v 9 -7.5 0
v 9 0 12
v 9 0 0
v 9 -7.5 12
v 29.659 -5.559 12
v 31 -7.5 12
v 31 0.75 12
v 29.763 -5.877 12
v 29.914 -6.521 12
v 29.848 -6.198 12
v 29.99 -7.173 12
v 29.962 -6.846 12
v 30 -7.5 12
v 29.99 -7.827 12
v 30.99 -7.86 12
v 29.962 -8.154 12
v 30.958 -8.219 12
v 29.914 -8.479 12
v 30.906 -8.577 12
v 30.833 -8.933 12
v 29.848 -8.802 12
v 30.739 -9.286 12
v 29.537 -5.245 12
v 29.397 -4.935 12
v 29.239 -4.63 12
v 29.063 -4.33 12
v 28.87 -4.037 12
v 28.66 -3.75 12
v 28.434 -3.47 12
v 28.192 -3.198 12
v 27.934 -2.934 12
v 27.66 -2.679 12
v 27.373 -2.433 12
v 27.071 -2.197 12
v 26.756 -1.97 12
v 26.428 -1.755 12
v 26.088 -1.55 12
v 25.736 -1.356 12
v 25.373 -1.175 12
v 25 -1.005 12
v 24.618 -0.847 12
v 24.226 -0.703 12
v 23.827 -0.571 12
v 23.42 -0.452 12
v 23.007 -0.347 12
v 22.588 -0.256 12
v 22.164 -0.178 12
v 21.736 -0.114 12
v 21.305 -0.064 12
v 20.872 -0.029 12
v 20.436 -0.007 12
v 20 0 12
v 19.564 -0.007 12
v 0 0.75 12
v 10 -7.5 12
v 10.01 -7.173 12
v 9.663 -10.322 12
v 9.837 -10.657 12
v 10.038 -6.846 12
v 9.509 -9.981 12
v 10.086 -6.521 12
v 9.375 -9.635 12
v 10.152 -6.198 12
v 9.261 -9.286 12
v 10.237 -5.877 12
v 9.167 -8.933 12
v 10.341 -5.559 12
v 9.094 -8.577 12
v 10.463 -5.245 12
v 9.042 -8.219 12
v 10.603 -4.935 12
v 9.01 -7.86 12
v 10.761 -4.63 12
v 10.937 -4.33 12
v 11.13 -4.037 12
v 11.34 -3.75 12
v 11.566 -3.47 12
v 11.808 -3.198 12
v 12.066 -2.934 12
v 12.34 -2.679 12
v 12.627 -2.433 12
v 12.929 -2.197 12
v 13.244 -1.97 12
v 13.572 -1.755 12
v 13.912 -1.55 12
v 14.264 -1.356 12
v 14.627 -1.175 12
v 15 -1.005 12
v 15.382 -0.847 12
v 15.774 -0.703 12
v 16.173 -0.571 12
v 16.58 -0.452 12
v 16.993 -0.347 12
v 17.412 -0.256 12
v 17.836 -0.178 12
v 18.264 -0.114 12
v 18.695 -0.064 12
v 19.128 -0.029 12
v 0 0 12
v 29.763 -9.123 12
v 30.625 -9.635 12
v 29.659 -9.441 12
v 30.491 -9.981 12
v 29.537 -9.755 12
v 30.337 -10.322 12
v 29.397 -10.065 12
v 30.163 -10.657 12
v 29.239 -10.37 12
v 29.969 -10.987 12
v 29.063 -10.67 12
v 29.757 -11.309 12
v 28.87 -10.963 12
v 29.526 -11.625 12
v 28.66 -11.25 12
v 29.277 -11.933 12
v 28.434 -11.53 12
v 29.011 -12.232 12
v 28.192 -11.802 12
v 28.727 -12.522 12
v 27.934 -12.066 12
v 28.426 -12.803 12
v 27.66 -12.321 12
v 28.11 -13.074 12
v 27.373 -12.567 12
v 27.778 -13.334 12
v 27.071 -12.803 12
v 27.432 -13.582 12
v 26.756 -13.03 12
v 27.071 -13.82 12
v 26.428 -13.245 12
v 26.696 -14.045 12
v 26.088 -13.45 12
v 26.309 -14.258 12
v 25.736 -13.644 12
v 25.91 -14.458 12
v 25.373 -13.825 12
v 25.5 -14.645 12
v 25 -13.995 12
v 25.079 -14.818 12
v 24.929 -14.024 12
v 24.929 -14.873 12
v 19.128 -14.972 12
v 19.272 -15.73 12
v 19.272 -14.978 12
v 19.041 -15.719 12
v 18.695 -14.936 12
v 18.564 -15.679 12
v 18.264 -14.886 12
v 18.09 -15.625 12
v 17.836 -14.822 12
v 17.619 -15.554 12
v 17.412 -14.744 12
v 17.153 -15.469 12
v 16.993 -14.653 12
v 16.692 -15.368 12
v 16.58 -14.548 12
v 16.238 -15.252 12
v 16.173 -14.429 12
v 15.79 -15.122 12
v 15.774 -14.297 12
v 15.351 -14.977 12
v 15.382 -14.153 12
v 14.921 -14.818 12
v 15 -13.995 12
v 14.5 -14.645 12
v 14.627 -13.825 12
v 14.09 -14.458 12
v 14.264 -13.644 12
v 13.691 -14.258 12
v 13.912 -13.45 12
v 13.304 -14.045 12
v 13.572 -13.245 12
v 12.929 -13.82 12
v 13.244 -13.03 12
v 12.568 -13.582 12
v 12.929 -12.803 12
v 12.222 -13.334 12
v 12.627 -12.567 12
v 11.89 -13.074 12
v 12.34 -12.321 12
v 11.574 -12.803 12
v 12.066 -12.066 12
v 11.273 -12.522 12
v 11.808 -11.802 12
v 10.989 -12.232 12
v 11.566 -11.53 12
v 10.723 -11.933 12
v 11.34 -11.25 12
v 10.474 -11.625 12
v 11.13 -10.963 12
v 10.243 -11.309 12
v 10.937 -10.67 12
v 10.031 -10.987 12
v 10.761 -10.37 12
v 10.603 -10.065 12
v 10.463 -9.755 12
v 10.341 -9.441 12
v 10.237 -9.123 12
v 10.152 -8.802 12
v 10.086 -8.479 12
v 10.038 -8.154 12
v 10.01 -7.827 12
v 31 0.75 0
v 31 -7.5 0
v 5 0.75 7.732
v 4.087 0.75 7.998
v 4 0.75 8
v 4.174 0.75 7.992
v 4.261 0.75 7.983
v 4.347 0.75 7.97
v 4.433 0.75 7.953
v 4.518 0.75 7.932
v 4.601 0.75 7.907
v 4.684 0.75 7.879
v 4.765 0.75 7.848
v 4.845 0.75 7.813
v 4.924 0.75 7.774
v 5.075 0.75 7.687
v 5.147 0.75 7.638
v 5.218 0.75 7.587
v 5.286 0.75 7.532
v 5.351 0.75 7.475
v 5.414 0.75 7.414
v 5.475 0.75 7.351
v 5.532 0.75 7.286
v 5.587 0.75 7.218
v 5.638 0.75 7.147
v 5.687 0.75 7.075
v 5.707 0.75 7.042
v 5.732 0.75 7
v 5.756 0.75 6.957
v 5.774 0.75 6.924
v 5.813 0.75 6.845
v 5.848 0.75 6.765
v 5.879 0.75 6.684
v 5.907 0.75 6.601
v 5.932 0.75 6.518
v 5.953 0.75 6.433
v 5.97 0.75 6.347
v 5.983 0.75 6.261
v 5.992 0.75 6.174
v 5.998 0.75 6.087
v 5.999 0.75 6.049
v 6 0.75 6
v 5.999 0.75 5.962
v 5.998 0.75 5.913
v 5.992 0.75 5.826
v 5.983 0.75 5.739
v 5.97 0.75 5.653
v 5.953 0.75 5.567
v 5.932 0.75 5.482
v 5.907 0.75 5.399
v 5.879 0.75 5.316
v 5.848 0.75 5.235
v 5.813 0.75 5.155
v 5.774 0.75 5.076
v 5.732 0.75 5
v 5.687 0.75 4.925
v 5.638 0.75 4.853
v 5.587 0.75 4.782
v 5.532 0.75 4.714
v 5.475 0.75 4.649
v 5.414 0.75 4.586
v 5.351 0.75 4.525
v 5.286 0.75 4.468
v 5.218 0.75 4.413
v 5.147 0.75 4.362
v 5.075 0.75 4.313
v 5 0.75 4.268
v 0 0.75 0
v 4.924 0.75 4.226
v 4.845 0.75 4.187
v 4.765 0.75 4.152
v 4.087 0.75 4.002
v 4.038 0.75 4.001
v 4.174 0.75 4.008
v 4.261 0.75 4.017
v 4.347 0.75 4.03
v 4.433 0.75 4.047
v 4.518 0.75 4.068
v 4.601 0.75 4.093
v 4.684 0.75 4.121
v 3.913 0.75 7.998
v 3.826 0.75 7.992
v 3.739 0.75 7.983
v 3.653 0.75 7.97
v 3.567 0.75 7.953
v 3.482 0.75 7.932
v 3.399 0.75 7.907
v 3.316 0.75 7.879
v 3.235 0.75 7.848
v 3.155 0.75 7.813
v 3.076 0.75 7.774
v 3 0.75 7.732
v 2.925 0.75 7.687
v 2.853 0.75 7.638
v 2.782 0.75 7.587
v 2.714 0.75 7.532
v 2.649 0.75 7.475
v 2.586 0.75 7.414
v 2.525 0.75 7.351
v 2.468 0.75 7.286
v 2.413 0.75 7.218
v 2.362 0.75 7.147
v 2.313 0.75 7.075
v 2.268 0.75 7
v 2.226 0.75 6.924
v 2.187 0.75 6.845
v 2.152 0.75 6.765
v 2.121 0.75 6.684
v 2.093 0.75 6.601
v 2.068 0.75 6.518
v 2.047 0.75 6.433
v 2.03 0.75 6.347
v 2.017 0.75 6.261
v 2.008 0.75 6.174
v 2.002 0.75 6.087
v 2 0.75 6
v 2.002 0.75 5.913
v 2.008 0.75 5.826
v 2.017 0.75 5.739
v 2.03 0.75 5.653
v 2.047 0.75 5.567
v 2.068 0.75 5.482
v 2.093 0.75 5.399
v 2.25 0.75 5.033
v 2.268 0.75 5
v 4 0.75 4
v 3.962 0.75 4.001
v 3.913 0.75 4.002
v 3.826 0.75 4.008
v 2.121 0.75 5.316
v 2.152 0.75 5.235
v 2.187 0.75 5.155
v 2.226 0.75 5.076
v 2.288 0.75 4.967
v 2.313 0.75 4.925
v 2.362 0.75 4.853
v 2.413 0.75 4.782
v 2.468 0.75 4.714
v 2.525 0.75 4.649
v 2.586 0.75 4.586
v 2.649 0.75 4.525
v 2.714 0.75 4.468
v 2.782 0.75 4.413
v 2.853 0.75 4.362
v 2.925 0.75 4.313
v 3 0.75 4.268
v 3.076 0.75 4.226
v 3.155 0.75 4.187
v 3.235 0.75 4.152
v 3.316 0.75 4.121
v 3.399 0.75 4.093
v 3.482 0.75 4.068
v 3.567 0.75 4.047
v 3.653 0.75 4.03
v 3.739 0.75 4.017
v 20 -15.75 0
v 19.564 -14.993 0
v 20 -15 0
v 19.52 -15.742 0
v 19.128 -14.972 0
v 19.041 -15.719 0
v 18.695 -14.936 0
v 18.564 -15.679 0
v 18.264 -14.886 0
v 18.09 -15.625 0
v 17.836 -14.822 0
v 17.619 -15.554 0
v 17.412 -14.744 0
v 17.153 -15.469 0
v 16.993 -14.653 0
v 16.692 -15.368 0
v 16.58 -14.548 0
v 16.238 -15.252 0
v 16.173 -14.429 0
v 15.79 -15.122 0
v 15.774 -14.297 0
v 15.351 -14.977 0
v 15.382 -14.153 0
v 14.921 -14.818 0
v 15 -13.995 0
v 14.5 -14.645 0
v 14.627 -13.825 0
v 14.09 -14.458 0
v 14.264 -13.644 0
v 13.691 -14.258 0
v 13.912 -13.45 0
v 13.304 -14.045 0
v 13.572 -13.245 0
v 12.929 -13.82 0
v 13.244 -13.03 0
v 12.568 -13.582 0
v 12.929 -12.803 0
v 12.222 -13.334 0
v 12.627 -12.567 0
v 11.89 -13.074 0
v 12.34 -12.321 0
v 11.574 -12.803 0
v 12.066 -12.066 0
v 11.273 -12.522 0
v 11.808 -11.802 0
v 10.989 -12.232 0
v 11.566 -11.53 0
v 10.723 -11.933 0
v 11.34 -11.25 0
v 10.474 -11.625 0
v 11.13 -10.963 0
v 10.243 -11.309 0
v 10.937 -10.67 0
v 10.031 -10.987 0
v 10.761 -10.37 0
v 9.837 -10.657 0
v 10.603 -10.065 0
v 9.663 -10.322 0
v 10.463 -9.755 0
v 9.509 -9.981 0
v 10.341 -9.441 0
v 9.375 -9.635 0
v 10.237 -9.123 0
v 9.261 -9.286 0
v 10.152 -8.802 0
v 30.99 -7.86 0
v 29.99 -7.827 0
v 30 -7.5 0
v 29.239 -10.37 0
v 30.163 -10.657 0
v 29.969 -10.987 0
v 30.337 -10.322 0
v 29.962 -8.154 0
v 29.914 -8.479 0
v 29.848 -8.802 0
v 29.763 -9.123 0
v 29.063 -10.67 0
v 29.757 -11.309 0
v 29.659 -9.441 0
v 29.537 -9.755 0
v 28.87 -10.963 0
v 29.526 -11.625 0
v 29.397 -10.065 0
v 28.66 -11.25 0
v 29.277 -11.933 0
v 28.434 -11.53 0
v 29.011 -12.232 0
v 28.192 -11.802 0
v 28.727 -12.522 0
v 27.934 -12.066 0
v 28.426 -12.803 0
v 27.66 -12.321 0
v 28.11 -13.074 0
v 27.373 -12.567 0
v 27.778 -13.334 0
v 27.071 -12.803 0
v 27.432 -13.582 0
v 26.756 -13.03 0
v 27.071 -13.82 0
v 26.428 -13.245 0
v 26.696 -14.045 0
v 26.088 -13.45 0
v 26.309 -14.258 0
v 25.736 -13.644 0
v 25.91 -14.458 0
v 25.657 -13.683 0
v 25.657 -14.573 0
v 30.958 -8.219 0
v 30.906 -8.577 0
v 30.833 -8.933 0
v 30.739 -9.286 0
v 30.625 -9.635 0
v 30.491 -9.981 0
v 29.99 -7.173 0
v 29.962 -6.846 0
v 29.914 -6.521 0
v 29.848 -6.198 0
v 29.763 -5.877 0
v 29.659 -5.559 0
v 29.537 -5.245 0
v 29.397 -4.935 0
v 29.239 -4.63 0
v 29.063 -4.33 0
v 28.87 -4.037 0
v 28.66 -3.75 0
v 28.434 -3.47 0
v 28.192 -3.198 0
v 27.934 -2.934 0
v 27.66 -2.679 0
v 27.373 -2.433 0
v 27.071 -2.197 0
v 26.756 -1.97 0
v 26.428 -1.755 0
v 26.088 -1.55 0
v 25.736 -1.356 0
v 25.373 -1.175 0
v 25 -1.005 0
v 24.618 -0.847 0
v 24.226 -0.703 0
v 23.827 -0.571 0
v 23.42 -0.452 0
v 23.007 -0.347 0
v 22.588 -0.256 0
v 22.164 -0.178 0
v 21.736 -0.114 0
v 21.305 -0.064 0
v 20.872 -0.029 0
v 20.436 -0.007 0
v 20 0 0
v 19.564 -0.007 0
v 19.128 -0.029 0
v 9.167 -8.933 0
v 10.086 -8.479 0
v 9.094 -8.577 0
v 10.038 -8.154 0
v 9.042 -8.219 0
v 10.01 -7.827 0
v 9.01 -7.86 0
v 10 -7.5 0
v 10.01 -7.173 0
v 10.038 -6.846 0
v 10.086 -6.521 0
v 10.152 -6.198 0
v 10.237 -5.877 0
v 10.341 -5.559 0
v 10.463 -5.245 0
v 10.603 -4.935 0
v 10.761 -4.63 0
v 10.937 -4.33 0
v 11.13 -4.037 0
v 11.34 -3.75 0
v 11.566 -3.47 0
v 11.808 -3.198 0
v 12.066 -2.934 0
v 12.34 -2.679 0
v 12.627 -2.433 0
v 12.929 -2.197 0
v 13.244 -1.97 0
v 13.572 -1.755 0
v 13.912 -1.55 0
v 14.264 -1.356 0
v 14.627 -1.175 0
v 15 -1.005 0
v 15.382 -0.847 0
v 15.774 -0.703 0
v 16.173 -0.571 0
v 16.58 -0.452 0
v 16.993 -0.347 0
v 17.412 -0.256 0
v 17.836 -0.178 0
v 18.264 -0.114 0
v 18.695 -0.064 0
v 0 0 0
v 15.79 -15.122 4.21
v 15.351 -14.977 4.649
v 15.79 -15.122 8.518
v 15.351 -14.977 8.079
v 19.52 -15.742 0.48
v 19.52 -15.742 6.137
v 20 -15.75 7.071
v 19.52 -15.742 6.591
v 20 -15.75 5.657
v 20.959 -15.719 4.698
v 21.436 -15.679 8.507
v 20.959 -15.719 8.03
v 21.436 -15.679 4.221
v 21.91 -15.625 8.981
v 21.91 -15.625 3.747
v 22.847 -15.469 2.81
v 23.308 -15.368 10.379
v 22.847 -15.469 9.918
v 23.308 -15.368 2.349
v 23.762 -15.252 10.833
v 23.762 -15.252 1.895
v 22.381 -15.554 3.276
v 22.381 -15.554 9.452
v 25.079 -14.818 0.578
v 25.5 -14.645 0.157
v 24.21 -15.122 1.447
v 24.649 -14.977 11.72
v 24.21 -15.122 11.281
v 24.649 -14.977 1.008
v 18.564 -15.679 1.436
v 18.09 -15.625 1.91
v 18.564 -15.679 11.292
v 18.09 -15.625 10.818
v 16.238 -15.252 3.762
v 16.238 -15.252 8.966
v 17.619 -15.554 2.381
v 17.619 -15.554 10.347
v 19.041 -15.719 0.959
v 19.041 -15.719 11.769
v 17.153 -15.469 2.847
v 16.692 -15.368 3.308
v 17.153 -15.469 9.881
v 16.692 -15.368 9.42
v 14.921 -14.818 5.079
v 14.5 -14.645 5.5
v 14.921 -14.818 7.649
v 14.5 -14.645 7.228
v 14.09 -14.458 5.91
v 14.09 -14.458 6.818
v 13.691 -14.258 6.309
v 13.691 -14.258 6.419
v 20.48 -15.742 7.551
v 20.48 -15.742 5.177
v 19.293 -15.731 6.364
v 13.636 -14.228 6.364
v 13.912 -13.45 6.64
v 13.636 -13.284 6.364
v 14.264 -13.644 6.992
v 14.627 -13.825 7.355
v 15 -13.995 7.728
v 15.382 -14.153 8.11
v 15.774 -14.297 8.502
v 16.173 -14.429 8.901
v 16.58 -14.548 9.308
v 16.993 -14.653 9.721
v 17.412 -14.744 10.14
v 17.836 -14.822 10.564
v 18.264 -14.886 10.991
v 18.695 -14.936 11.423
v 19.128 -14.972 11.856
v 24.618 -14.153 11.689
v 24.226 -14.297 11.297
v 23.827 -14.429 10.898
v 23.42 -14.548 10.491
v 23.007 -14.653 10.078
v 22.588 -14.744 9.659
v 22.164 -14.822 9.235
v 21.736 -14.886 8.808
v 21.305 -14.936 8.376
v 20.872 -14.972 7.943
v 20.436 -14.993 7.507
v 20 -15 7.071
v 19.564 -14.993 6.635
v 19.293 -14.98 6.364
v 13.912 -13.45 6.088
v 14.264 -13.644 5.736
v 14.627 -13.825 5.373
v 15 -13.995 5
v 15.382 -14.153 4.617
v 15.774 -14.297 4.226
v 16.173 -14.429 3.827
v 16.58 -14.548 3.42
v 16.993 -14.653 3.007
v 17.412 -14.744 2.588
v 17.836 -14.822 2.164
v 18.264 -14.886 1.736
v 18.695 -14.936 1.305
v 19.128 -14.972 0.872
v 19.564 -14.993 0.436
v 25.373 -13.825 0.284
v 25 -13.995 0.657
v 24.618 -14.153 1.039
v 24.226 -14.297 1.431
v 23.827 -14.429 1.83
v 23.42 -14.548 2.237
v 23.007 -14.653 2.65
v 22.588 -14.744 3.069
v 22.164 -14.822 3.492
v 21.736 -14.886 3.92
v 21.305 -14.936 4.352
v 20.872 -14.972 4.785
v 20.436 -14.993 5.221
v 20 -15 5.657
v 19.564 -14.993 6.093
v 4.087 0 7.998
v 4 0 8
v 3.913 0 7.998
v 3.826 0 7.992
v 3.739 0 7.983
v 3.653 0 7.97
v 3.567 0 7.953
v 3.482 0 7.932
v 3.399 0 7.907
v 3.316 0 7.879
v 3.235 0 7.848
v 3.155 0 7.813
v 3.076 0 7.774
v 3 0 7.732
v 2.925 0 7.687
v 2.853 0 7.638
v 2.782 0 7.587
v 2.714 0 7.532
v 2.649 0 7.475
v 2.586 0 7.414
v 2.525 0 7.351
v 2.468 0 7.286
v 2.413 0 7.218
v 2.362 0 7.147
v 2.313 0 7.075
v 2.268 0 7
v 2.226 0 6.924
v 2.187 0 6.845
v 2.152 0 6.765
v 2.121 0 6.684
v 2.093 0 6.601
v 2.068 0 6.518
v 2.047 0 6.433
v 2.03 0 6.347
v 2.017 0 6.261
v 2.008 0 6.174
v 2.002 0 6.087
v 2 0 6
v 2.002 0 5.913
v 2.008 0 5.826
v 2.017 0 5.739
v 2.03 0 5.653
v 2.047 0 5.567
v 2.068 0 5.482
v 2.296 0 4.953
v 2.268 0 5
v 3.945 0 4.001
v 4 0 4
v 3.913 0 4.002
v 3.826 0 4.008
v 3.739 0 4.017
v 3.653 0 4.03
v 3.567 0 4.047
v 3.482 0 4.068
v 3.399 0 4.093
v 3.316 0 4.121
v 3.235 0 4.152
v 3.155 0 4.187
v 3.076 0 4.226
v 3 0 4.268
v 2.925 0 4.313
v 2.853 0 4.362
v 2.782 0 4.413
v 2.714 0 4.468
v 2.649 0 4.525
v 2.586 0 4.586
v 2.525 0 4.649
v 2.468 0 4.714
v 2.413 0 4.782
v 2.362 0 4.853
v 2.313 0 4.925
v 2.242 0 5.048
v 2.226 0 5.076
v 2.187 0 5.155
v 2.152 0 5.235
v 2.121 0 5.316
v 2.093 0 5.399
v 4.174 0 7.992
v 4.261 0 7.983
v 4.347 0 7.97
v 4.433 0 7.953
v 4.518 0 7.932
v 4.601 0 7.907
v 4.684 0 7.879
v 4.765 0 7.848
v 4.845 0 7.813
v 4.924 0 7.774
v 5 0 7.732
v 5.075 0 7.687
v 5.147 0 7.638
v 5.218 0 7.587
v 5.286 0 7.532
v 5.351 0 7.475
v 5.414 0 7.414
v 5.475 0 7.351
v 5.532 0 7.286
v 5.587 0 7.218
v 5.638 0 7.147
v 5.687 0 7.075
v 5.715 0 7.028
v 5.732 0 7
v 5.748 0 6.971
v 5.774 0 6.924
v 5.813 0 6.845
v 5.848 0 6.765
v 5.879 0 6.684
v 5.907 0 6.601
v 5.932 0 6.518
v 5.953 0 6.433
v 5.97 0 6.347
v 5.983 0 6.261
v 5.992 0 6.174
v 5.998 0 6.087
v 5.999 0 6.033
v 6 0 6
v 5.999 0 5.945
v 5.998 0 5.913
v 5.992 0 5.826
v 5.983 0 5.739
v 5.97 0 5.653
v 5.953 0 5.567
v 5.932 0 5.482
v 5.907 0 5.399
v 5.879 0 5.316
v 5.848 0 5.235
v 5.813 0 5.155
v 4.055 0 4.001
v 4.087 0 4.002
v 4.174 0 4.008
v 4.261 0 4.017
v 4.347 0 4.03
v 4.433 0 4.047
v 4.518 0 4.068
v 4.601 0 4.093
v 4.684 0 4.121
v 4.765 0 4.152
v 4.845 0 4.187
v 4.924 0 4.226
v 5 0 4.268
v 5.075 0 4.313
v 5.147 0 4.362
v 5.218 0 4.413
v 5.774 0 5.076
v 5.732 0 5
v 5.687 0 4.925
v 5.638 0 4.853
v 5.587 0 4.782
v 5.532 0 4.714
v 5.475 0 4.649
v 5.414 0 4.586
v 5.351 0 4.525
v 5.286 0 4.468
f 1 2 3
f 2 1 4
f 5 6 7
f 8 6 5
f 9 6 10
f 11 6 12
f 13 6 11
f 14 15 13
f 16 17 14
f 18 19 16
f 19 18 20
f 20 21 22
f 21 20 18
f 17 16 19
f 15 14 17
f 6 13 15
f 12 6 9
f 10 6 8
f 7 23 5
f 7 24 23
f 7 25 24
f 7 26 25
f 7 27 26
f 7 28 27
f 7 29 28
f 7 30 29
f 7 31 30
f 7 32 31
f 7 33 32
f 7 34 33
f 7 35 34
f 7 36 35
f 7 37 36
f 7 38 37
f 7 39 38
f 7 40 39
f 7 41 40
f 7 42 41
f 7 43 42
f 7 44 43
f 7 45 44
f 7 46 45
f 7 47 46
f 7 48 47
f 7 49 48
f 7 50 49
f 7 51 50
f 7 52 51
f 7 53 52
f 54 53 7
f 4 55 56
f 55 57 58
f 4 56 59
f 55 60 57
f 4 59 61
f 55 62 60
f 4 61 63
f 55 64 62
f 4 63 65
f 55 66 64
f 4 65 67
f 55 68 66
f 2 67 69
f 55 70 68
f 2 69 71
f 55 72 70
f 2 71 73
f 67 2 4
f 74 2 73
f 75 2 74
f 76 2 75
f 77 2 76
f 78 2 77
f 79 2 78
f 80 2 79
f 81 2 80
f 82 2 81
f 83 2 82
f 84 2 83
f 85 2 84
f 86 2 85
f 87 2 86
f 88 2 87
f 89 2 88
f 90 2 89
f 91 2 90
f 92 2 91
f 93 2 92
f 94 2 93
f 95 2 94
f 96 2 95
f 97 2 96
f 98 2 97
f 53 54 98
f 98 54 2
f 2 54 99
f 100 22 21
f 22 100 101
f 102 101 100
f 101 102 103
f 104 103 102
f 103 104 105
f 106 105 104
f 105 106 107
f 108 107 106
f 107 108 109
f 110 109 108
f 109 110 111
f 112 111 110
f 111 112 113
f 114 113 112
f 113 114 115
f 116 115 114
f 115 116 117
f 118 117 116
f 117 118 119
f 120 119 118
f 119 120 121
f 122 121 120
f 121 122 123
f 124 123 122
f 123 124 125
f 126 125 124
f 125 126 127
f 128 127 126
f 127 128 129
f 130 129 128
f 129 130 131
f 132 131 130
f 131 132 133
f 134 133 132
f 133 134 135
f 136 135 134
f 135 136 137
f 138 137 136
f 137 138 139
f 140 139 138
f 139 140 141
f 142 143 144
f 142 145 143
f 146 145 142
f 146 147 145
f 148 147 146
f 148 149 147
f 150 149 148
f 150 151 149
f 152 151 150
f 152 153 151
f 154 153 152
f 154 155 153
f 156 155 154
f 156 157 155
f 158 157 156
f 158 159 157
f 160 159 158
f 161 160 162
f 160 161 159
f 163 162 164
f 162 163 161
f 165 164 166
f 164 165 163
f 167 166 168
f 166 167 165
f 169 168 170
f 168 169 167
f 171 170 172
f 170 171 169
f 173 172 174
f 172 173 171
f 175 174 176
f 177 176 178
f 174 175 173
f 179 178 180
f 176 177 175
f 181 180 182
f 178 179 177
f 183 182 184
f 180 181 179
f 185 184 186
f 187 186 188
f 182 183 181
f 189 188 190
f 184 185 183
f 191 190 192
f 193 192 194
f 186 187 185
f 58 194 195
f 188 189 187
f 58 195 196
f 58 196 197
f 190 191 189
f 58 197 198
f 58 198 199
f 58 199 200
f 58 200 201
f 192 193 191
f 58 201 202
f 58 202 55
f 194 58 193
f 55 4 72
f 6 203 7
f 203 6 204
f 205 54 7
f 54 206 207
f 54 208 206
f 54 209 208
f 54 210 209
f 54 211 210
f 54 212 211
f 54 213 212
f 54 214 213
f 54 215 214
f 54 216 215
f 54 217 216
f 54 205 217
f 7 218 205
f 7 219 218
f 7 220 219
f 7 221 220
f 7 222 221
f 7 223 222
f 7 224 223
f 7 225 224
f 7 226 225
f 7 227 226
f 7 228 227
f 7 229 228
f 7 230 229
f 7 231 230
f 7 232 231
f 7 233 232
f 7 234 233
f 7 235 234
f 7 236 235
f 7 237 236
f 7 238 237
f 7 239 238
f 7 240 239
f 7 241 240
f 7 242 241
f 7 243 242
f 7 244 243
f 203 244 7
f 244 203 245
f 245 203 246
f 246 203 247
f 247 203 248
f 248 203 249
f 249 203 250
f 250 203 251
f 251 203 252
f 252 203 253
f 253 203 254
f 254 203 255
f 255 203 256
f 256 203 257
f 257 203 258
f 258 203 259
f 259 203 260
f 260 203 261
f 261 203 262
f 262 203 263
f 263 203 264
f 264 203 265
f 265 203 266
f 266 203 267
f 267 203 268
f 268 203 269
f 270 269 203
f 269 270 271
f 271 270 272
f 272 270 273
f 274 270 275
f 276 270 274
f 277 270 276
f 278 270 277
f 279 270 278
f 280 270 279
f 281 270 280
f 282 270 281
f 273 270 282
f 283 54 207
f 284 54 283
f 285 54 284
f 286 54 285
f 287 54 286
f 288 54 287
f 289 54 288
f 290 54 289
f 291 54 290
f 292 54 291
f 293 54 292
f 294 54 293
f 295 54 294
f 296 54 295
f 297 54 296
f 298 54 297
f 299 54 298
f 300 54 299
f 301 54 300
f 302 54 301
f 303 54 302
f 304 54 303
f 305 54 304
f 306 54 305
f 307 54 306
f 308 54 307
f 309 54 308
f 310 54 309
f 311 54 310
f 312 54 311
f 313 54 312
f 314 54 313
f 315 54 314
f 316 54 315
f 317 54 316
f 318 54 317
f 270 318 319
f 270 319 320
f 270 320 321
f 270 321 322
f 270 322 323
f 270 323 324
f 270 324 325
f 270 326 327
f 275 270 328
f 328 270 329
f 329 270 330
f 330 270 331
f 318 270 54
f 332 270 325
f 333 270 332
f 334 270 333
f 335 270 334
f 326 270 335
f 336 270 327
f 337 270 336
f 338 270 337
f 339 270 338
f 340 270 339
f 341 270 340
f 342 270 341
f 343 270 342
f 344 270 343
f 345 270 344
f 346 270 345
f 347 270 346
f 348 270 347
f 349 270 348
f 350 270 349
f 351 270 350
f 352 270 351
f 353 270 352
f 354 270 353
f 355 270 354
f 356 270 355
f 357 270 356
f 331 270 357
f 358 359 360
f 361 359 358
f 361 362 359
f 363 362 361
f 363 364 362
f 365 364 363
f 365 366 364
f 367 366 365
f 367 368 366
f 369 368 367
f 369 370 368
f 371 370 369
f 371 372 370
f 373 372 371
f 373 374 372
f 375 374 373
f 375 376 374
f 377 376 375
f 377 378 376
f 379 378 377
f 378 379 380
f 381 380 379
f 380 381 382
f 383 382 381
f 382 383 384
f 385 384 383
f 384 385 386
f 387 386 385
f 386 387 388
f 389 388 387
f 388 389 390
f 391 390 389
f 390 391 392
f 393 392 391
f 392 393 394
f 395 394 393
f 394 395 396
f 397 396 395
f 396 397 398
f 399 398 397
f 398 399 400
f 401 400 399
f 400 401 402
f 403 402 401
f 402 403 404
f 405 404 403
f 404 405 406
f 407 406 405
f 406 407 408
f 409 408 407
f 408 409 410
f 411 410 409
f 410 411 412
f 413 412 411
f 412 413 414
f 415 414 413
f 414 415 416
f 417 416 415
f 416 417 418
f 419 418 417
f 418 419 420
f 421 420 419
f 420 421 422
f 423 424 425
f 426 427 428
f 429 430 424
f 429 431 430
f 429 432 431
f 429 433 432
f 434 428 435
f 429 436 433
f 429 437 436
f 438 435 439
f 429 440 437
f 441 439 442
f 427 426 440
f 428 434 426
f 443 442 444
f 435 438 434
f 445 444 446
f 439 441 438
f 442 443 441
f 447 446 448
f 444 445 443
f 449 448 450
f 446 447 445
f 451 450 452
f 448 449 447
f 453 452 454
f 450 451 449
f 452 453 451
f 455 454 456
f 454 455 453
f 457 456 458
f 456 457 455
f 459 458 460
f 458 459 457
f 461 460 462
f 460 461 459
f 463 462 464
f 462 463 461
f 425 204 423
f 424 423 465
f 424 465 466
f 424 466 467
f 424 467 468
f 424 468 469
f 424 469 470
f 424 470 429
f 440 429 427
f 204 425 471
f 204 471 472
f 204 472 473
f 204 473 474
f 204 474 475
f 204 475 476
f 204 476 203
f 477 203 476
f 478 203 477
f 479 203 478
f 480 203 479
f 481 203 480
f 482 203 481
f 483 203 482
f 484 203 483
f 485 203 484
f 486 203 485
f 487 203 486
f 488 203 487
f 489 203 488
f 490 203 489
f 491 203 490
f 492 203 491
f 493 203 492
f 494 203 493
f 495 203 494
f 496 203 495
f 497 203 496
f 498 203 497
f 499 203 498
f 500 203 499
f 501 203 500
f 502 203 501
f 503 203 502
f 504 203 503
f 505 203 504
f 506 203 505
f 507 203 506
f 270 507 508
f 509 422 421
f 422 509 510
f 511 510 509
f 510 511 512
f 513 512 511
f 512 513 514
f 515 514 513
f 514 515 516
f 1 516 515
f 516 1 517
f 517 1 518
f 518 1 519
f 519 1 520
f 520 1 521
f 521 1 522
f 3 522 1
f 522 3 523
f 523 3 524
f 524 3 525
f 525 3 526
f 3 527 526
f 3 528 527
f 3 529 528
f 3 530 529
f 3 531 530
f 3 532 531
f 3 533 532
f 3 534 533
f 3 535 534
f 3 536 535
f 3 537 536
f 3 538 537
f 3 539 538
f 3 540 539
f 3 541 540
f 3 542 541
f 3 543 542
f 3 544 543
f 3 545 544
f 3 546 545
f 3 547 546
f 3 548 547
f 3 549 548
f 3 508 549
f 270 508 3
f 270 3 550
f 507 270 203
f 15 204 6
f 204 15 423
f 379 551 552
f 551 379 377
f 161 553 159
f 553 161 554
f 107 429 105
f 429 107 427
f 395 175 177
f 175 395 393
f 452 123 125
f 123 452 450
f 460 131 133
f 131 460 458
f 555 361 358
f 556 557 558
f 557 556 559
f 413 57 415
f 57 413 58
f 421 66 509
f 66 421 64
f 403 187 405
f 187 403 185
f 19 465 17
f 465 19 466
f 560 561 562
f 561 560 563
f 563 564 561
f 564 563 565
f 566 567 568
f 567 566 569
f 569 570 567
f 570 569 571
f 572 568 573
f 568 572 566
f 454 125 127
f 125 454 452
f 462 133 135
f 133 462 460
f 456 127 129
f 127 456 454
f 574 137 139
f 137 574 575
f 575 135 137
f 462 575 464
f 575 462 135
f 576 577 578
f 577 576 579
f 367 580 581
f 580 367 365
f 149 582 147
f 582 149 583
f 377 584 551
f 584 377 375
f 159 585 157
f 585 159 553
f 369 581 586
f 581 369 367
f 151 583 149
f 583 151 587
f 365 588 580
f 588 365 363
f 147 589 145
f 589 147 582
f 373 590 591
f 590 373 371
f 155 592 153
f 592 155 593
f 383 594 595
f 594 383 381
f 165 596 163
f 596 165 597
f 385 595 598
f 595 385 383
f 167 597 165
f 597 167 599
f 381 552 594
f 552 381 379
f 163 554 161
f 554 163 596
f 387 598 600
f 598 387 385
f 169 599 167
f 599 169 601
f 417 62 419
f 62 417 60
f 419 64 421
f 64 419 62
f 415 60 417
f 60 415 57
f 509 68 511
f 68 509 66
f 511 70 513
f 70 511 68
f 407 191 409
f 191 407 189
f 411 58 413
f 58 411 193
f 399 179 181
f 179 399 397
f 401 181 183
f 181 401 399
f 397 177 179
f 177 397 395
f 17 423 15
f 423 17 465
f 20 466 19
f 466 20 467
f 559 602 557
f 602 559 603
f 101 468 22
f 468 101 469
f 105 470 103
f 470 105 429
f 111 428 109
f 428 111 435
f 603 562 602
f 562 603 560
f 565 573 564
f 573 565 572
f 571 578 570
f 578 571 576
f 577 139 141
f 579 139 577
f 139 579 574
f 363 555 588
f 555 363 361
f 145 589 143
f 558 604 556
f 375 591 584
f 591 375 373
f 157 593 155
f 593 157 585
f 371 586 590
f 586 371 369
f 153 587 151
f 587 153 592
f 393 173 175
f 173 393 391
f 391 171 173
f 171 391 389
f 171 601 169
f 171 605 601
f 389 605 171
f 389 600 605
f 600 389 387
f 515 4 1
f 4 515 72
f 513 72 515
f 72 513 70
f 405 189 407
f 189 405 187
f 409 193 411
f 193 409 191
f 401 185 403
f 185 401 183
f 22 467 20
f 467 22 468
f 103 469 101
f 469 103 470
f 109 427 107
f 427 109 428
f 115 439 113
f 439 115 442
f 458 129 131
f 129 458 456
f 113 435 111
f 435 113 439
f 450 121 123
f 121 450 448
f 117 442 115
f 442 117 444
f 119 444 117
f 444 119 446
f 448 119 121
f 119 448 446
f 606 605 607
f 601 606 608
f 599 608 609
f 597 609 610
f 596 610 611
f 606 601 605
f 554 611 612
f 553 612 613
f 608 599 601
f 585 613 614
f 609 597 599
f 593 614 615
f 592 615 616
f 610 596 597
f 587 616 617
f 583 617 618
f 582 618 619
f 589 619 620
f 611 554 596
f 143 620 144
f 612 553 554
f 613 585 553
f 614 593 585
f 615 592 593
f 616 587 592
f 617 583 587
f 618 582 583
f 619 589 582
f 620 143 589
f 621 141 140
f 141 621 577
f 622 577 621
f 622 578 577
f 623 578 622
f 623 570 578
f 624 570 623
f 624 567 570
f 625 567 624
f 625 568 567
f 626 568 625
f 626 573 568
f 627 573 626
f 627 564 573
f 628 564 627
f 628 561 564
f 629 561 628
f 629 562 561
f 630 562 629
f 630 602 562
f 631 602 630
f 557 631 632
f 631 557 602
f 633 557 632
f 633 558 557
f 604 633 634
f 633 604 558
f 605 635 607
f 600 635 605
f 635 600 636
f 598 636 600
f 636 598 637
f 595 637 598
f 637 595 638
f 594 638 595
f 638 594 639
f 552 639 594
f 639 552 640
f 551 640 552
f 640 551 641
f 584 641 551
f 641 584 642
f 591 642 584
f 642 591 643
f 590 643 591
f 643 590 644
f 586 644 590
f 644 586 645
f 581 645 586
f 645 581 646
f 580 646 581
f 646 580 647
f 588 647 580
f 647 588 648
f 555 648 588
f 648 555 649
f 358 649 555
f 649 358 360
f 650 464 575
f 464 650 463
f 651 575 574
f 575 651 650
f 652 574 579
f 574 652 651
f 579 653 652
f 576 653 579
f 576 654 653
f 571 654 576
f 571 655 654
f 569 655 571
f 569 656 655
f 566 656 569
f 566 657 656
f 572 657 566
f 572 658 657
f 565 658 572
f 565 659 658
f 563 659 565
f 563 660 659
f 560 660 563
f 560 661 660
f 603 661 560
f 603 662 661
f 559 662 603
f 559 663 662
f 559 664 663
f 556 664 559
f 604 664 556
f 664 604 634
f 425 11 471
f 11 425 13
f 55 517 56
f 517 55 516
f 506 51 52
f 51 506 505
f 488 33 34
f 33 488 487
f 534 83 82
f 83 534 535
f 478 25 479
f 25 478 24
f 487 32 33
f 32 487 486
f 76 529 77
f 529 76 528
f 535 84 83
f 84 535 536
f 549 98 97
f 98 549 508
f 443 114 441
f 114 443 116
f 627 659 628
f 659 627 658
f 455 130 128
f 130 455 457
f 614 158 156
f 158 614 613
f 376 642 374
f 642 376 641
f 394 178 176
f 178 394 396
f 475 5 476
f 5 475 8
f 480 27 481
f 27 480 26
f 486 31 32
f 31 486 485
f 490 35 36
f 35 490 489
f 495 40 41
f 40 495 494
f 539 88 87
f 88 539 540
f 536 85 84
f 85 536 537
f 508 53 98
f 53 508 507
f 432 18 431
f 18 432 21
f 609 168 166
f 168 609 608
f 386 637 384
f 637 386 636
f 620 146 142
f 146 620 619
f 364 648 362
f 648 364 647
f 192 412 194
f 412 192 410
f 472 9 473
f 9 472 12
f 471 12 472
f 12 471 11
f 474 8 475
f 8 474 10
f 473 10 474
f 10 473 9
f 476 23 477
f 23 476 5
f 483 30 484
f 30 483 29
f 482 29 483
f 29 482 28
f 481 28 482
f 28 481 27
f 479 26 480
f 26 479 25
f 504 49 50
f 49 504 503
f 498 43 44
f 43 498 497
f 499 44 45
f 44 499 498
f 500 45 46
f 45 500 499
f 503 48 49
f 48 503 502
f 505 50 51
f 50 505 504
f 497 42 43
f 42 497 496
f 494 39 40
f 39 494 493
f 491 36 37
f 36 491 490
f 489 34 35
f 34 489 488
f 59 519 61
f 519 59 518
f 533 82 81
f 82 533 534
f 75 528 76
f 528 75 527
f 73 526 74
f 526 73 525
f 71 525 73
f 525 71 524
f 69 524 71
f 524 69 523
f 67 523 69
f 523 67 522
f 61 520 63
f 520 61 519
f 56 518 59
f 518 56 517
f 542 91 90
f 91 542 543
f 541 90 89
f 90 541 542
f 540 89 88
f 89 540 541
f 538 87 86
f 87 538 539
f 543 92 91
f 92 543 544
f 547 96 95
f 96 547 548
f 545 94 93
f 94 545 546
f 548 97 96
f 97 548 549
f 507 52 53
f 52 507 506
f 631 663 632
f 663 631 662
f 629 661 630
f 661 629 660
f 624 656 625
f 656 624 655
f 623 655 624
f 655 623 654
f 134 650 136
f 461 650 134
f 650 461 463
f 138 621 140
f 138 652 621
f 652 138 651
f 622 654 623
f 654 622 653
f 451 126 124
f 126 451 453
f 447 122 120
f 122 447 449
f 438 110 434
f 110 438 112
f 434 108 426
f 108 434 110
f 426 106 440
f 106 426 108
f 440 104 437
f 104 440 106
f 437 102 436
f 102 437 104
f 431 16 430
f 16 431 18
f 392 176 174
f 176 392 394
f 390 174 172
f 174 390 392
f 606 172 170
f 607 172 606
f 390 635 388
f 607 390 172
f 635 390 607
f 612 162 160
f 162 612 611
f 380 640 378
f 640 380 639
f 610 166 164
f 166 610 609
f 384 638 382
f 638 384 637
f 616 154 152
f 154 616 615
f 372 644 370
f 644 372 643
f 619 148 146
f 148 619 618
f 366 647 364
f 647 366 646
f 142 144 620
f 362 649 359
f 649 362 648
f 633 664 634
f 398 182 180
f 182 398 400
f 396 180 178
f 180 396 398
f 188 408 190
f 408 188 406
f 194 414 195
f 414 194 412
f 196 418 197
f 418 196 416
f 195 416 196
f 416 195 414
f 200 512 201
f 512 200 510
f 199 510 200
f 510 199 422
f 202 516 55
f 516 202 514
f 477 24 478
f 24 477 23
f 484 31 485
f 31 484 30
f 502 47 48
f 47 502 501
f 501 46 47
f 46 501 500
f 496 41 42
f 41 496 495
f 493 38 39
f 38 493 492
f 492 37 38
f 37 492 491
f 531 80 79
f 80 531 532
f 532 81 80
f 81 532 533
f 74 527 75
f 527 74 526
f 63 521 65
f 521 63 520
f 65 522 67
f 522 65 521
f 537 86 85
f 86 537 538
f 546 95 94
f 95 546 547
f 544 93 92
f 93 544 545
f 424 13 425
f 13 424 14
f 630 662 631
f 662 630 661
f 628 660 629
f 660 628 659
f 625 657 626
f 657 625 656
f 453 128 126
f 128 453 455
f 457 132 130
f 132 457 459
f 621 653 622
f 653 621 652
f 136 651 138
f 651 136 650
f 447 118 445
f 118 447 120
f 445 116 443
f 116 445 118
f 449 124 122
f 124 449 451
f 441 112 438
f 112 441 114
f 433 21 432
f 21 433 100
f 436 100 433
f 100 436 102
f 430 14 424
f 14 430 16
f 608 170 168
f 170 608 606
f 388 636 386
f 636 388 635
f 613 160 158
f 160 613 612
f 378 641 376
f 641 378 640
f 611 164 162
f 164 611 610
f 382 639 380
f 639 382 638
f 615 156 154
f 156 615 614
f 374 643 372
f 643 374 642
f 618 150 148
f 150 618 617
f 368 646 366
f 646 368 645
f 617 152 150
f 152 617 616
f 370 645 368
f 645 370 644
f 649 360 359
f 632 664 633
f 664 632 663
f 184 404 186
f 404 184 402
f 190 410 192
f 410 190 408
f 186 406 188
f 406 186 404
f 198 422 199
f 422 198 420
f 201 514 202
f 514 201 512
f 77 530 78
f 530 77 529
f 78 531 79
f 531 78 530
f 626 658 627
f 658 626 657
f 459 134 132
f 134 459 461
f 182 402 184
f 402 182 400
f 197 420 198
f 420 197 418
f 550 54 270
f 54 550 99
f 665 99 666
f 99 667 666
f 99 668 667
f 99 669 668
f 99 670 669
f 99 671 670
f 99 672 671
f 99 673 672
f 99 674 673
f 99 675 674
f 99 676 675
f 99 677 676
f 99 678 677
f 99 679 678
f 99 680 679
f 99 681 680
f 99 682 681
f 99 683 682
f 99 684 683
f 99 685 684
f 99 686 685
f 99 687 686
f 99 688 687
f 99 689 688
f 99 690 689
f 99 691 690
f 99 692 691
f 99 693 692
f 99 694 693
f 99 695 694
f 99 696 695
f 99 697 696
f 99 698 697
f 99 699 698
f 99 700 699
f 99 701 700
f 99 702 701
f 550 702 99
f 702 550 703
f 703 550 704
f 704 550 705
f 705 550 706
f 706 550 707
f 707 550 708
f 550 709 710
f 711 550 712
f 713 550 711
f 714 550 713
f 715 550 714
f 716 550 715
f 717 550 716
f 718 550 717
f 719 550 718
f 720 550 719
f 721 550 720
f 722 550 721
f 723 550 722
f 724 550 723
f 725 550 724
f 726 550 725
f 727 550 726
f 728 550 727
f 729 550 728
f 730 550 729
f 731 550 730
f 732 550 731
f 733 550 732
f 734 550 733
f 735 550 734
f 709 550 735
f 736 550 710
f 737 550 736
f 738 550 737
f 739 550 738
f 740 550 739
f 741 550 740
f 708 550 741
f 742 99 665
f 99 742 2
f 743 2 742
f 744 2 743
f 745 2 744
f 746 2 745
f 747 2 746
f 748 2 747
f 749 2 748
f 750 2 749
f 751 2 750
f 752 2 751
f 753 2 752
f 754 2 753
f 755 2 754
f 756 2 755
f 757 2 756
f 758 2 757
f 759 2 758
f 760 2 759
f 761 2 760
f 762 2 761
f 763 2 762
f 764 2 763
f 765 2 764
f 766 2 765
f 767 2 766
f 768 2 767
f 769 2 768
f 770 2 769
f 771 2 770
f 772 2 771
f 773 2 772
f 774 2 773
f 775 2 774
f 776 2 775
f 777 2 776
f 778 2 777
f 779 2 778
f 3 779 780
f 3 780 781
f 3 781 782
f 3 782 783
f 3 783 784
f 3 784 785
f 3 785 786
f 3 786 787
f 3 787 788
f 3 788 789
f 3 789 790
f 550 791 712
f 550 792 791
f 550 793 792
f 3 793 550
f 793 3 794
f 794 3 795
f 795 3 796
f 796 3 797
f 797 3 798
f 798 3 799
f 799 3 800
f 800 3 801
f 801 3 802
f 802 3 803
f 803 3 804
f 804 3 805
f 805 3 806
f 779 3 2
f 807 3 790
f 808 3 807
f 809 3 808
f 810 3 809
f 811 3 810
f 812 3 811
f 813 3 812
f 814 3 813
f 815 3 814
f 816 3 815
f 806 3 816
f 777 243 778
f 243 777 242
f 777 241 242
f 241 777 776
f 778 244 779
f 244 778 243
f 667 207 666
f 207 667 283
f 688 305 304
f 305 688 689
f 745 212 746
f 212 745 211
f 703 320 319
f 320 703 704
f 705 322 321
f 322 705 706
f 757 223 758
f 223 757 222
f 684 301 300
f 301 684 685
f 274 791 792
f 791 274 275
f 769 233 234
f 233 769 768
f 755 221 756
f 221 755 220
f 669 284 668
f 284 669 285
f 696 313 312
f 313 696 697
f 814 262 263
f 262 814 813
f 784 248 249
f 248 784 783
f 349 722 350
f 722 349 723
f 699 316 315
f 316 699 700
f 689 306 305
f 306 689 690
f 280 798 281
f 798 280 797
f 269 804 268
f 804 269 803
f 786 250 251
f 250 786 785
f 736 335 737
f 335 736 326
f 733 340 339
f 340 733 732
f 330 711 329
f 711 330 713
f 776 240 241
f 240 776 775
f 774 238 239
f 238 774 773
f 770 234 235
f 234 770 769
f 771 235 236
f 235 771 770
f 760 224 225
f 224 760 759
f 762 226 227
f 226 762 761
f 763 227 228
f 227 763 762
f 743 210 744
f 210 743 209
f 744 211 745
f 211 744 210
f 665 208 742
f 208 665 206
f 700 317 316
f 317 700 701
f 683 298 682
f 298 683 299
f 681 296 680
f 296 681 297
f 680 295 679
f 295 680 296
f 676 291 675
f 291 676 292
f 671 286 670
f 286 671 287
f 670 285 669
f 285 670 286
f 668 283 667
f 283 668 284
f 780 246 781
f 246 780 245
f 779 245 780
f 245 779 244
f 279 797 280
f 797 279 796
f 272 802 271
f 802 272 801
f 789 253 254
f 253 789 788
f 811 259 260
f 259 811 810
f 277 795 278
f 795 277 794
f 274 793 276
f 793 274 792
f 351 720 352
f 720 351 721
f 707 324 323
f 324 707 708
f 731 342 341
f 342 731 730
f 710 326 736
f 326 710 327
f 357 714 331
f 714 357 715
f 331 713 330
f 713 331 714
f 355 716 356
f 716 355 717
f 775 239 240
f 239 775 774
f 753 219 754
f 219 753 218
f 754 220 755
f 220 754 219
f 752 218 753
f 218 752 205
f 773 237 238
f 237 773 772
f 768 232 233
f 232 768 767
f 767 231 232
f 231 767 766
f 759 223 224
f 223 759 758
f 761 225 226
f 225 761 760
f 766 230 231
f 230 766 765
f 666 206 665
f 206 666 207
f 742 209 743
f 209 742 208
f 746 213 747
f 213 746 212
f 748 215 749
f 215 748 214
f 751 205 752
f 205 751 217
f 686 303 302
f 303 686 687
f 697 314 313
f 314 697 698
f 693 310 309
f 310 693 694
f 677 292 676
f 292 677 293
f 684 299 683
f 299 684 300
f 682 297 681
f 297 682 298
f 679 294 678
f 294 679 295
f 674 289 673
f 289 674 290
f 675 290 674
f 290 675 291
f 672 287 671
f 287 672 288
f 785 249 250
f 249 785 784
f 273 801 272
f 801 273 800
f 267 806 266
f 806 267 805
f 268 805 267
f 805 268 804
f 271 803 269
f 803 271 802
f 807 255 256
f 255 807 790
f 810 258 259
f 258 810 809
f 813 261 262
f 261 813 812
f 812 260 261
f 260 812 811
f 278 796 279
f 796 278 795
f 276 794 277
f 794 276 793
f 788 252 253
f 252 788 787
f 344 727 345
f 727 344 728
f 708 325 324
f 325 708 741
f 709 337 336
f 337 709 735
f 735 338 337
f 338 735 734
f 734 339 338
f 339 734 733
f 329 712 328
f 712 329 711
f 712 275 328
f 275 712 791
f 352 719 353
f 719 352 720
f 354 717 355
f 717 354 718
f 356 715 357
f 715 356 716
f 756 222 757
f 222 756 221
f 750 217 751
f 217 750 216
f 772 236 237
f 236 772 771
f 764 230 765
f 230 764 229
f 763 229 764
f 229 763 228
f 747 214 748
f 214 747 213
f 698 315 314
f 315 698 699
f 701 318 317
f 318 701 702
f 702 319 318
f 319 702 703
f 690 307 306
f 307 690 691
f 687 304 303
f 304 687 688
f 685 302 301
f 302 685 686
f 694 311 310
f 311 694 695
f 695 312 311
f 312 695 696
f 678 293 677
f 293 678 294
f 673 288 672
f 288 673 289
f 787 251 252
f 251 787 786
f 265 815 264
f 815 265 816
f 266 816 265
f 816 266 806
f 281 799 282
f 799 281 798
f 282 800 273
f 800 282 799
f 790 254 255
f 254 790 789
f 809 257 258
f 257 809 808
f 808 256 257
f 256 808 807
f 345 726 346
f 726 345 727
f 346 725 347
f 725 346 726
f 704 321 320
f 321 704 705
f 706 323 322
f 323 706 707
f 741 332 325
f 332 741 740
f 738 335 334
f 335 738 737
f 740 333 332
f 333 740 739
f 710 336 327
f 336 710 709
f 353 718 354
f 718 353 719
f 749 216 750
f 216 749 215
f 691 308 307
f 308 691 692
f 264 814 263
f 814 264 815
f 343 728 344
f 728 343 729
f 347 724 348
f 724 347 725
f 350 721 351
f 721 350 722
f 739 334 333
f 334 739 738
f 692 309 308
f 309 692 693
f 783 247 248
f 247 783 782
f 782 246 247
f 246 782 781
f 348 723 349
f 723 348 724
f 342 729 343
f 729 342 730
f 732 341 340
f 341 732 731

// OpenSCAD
width=12;
holeOffset = 8;
holeRadius = 2;

holeFacets = 144;

height=40;
flagRadius = 10;

difference() {
    scale([1,0.75,1])
    union() {
        cube([20,1,width]);
        translate([20,-(flagRadius),0])
            Holder();
    }

    translate([4,0,6])
    rotate([90,0,0])
    translate([0,0,-2.5])
    cylinder(r=holeRadius, h=4, $fn = holeFacets);

    //translate([36,0,6])
   // rotate([90,0,0])
  //  translate([0,0,-2.5])
  //  cylinder(r=holeRadius, h=4, $fn = holeFacets);
}

module Holder() {
    difference() {
        union() {
        translate([-(flagRadius+1),0,0])
            cube([2*(flagRadius+1),(flagRadius+1),width]);
            cylinder(r=flagRadius+1,h=width,$fn=holeFacets);
        }
        
        translate([0,0,-2])
        cylinder(r=flagRadius, h=width+4, $fn=holeFacets);
        
        translate([-6*sqrt(2),0,0])
        rotate([0,45,0])
            translate([-3,-(flagRadius+3),width/2]) {
            cube([4,flagRadius,width+8]);
            cube([width+8,flagRadius,4]);
        }
        
      //  translate([0,-flagRadius,width/2])
      //  rotate([0,-30,0])
      //  cube([6,flagRadius,width+8],center=true);
    }
}

module Holes() {
    translate([holeOffset,0,0])
        cylinder(r=holeRadius,h=2*sliderDepth, center=true, $fn=holeFacets);
    translate([-holeOffset,0,0])
        cylinder(r=holeRadius,h=2*sliderDepth, center=true, $fn=holeFacets);
    translate([0,holeOffset,0])
        cylinder(r=holeRadius,h=2*sliderDepth, center=true, $fn=holeFacets);
    translate([0,-holeOffset,0])
        cylinder(r=holeRadius,h=2*sliderDepth, center=true, $fn=holeFacets);
}
